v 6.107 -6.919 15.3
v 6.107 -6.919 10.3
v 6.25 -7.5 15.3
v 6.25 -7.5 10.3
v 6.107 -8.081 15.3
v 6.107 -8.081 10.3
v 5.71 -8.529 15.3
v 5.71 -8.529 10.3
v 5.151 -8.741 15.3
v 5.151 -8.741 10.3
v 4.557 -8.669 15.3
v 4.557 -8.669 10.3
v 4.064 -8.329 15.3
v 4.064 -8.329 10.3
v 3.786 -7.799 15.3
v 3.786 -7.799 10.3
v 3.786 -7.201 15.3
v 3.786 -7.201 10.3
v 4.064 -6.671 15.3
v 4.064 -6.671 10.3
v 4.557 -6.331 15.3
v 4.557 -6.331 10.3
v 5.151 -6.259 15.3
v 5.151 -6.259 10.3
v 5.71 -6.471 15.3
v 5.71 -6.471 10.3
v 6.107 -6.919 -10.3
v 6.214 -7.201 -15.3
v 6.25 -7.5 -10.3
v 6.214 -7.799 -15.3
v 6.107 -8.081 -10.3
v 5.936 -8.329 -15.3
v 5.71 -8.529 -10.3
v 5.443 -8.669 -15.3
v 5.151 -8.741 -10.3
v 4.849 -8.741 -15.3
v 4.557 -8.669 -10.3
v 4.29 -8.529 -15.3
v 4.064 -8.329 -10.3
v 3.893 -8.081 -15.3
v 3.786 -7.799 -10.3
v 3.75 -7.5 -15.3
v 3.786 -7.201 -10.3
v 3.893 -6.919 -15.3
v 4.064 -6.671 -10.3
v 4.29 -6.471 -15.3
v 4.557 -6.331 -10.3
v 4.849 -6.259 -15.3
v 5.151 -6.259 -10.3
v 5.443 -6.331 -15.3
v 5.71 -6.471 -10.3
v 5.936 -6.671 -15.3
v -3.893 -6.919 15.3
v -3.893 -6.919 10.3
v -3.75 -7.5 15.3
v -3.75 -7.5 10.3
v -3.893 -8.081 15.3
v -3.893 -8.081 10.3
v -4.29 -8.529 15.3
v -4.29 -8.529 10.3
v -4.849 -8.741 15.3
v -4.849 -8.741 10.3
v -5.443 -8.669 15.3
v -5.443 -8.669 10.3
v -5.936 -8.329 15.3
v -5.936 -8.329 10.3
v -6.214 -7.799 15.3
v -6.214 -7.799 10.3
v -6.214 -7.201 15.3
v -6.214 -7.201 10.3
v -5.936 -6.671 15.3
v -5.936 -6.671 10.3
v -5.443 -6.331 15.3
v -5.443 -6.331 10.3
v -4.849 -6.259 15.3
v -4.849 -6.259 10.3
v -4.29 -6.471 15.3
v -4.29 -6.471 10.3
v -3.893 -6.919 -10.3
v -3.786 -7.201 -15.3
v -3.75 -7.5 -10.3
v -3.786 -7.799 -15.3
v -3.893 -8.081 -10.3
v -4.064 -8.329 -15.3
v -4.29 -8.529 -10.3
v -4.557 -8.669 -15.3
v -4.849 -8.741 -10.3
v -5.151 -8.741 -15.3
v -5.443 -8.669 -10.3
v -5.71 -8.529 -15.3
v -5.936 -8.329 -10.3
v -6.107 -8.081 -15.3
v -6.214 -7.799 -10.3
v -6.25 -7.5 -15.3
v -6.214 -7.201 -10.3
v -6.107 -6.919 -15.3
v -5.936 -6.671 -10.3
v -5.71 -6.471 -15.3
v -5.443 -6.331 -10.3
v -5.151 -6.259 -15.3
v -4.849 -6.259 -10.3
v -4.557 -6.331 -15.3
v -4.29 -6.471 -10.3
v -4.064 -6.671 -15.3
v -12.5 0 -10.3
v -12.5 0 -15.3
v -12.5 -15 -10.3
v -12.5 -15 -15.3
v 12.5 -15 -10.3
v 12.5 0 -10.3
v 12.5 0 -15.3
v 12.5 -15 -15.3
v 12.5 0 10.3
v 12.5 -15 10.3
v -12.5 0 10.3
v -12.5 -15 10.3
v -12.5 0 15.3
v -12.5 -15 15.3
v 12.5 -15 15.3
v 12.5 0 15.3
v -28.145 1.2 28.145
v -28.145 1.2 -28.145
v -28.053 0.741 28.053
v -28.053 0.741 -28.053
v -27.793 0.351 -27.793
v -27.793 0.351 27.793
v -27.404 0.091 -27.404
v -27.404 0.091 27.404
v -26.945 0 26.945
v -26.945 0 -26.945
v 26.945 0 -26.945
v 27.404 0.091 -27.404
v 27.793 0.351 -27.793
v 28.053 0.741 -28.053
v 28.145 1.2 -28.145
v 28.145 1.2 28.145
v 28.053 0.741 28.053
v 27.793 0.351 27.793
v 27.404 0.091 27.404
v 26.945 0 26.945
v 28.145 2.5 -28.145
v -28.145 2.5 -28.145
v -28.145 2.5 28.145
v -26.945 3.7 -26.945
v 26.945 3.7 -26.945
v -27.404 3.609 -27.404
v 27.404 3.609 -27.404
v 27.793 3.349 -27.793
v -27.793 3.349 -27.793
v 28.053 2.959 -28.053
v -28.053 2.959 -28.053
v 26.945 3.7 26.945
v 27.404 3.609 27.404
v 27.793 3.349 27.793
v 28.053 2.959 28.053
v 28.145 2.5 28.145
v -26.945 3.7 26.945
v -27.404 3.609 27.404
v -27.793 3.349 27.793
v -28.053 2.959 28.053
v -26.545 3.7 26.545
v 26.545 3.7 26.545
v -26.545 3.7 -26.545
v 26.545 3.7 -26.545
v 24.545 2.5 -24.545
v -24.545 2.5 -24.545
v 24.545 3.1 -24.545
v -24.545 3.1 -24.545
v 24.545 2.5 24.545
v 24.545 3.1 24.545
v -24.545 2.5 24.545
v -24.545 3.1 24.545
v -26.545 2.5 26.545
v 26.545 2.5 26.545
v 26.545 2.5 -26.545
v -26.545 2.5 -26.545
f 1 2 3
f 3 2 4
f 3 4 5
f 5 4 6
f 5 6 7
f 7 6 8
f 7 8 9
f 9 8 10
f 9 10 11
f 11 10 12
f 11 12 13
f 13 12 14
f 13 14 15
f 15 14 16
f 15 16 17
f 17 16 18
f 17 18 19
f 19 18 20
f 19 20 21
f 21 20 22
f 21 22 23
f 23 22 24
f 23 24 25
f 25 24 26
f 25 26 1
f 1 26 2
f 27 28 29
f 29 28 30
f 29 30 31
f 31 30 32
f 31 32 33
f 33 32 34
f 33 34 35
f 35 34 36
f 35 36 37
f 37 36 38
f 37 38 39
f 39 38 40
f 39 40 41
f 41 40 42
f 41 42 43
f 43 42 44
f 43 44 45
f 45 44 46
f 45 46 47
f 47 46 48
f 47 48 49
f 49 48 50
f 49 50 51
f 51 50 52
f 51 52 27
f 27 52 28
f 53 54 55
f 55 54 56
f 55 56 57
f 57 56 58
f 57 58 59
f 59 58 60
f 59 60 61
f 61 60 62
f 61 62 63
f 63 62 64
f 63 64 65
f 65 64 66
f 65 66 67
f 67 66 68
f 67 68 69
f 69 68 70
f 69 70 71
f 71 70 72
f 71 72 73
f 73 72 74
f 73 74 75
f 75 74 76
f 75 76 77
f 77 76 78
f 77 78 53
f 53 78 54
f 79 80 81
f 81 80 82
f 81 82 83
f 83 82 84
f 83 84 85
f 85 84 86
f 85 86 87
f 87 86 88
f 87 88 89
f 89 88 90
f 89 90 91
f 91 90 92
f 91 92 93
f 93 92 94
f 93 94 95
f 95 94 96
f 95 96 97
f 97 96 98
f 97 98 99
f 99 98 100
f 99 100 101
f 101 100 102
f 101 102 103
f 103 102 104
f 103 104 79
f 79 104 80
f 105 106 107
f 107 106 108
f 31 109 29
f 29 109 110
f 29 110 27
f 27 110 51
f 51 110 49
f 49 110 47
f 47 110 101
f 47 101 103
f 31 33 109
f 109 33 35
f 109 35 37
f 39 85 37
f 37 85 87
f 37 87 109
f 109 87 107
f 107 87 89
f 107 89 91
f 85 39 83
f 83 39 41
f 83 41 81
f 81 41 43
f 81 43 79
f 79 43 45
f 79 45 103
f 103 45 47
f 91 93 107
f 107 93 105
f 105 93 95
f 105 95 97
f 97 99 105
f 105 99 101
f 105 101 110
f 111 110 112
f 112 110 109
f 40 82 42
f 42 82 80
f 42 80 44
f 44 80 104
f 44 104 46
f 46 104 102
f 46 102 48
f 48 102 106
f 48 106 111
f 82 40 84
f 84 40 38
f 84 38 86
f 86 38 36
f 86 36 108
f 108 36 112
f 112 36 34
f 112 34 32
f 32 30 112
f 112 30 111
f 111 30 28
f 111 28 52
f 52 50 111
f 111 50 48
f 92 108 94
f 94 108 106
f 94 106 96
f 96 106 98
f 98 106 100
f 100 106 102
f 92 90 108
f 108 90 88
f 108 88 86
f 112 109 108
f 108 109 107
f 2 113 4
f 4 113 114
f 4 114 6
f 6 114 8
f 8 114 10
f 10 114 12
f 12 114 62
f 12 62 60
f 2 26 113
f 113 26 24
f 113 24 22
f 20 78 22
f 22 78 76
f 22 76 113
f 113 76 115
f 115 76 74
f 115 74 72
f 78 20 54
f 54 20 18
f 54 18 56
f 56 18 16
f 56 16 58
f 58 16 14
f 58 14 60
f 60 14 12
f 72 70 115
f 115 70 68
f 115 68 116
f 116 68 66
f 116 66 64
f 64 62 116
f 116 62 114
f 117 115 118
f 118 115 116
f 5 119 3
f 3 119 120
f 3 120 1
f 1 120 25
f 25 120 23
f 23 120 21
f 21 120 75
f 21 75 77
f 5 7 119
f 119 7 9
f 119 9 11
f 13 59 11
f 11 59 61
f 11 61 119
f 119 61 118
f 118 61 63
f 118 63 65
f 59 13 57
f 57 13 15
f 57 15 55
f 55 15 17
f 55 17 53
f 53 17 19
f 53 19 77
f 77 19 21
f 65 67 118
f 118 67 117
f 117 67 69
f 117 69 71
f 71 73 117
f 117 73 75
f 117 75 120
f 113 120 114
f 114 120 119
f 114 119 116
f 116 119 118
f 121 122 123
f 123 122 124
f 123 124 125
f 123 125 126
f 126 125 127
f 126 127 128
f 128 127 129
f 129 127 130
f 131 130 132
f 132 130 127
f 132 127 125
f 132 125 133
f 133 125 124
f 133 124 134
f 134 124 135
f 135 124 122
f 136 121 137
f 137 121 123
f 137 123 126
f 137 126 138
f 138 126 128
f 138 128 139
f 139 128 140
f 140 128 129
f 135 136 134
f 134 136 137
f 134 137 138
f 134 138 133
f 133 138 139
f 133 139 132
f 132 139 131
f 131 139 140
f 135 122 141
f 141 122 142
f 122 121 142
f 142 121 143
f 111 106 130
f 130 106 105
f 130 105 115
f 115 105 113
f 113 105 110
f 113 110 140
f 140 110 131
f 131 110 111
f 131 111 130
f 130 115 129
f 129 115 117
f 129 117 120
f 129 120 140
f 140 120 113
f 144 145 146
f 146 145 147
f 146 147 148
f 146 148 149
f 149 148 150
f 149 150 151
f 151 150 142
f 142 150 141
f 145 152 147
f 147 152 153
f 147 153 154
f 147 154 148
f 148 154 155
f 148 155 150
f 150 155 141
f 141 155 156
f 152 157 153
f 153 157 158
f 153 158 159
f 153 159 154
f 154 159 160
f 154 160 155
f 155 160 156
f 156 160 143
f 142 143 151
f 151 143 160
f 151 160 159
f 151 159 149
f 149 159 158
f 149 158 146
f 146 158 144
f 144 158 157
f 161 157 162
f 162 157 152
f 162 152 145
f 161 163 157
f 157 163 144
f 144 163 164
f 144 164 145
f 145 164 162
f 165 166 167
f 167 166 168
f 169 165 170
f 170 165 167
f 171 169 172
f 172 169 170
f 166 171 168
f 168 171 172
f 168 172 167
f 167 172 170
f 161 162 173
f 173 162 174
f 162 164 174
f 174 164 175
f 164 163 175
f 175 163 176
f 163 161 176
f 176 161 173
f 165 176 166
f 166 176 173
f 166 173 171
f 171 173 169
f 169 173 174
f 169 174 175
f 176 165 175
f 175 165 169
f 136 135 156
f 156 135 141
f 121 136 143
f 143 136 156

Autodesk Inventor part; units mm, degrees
ref_plane "YZ Plane" through (0, 0, 0) normal (1, 0, 0) x (0, 1, 0)
ref_plane "XZ Plane" through (0, 0, 0) normal (0, 1, 0) x (-1, 0, 0)
ref_plane "XY Plane" through (0, 0, 0) normal (0, 0, 1) x (1, 0, 0)
sketch "스케치1" plane through (0, 0, 0) normal (0, 1, 0) x (-1, 0, 0)
  line L0 (-24.9446, -24.9446) -> (24.9446, -24.9446)
  line L1 (24.9446, -24.9446) -> (24.9446, 24.9446)
  line L2 (24.9446, 24.9446) -> (-24.9446, 24.9446)
  line L3 (-24.9446, 24.9446) -> (-24.9446, -24.9446)
  line L4 (-24.9446, -24.9446) -> (24.9446, 24.9446) construction
  line L5 (24.9446, -24.9446) -> (-24.9446, 24.9446) construction
  line L6 (-28.1446, -28.1446) -> (28.1446, -28.1446)
  line L7 (28.1446, -28.1446) -> (28.1446, 28.1446)
  line L8 (28.1446, 28.1446) -> (-28.1446, 28.1446)
  line L9 (-28.1446, 28.1446) -> (-28.1446, -28.1446)
  line L10 (-28.1446, -28.1446) -> (28.1446, 28.1446) construction
  line L11 (28.1446, -28.1446) -> (-28.1446, 28.1446) construction
  point P0 (0, 0)
  dimension "d0" = 70.554
  dimension "d1" = 3.2
extrude "돌출1" add sketch "스케치1" along normal blind 3.7 contours L3 L2 L1 L0 | L9 L8 L7 L6
sketch "스케치2" plane through (0, 3.7, 0) normal (0, 1, 0) x (1, 0, 0)
  line L0 (-28.1446, 28.1446) -> (-28.1446, -28.1446) projected
  line L1 (-28.1446, -28.1446) -> (28.1446, -28.1446) projected
  line L2 (28.1446, -28.1446) -> (28.1446, 28.1446) projected
  line L3 (28.1446, 28.1446) -> (-28.1446, 28.1446) projected
  line L4 (26.5446, 26.5446) -> (-26.5446, 26.5446)
  line L5 (-26.5446, 26.5446) -> (-26.5446, -26.5446)
  line L6 (-26.5446, -26.5446) -> (26.5446, -26.5446)
  line L7 (26.5446, -26.5446) -> (26.5446, 26.5446)
  line L8 (26.5446, 26.5446) -> (-26.5446, -26.5446) construction
  line L9 (-26.5446, 26.5446) -> (26.5446, -26.5446) construction
  line L10 (24.5446, 24.5446) -> (-24.5446, 24.5446)
  line L11 (-24.5446, 24.5446) -> (-24.5446, -24.5446)
  line L12 (-24.5446, -24.5446) -> (24.5446, -24.5446)
  line L13 (24.5446, -24.5446) -> (24.5446, 24.5446)
  line L14 (24.5446, 24.5446) -> (-24.5446, -24.5446) construction
  line L15 (-24.5446, 24.5446) -> (24.5446, -24.5446) construction
  point P0 (0, 0)
  point P1 (0, 28.1446)
  point P2 (-28.1446, 0)
  dimension "d4" = 1.6
  dimension "d5" = 2
extrude "돌출2" cut sketch "스케치2" against normal blind 1.2 contours L7 L6 L5 L4 | L13 L12 L11 L10
sketch "스케치3" plane through (0, 2.5, 0) normal (0, 1, 0) x (1, 0, 0)
  line L0 (24.5446, 24.5446) -> (-24.5446, 24.5446)
  line L1 (-24.5446, 24.5446) -> (-24.5446, -24.5446)
  line L2 (-24.5446, -24.5446) -> (24.5446, -24.5446)
  line L3 (24.5446, -24.5446) -> (24.5446, 24.5446)
  line L4 (24.5446, 24.5446) -> (-24.5446, -24.5446) construction
  line L5 (-24.5446, 24.5446) -> (24.5446, -24.5446) construction
  line L6 (-26.5446, -26.5446) -> (-26.5446, 26.5446) projected
  point P0 (0, 0)
  dimension "d8" = 2
extrude "돌출3" add sketch "스케치3" along normal blind 0.6
fillet "모깎기1" radius 1.2 8 edges at (0, 3.7, 28.1446) (28.1446, 3.7, 0) (0, 3.7, -28.1446) (-28.1446, 3.7, 0) (-28.1446, 0, 0) (0, 0, 28.1446) (28.1446, 0, 0) (0, 0, -28.1446)
sketch "스케치10" plane through (0, 0, 0) normal (0, -1, 0) x (1, 0, 0)
  line L0 (-12.5, 10.3) -> (12.5, 10.3)
  line L1 (12.5, 10.3) -> (12.5, 15.3)
  line L2 (12.5, 15.3) -> (-12.5, 15.3)
  line L3 (-12.5, 15.3) -> (-12.5, 10.3)
  line L4 (-12.5, 10.3) -> (12.5, 15.3) construction
  line L5 (12.5, 10.3) -> (-12.5, 15.3) construction
  line L6 (0, 0) -> (6.1954, 0)
  line L7 (-12.5, -10.3) -> (12.5, -10.3)
  line L8 (12.5, -10.3) -> (12.5, -15.3)
  line L9 (12.5, -15.3) -> (-12.5, -15.3)
  line L10 (-12.5, -15.3) -> (-12.5, -10.3)
  line L11 (-12.5, -10.3) -> (12.5, -15.3) construction
  line L12 (12.5, -10.3) -> (-12.5, -15.3) construction
  point P0 (0, 12.8)
  point P1 (0, -12.8)
  dimension "d51" = 25
  dimension "d52" = 5
  dimension "d53" = 10.3
extrude "돌출7" add sketch "스케치10" along normal blind 15
sketch "스케치11" plane through (12.5, 0, -15.3) normal (0, 0, -1) x (-1, 0, 0)
  circle A0 centre (17.5, -7.5) radius 1.25
  line L0 (-14.4446, 0) -> (39.4446, 0) projected
  line L1 (12.5, 0) -> (12.5, -4.6677)
  circle A1 centre (7.5, -7.5) radius 1.25
  dimension "d56" = 2.5
  dimension "d57" = 7.5
  dimension "d58" = 5
extrude "돌출8" cut sketch "스케치11" against normal up to surface (30.6 mm away)
equation "\"d39\" = 55deg"
properties part number "OV-PAM_n_4_bottom"
